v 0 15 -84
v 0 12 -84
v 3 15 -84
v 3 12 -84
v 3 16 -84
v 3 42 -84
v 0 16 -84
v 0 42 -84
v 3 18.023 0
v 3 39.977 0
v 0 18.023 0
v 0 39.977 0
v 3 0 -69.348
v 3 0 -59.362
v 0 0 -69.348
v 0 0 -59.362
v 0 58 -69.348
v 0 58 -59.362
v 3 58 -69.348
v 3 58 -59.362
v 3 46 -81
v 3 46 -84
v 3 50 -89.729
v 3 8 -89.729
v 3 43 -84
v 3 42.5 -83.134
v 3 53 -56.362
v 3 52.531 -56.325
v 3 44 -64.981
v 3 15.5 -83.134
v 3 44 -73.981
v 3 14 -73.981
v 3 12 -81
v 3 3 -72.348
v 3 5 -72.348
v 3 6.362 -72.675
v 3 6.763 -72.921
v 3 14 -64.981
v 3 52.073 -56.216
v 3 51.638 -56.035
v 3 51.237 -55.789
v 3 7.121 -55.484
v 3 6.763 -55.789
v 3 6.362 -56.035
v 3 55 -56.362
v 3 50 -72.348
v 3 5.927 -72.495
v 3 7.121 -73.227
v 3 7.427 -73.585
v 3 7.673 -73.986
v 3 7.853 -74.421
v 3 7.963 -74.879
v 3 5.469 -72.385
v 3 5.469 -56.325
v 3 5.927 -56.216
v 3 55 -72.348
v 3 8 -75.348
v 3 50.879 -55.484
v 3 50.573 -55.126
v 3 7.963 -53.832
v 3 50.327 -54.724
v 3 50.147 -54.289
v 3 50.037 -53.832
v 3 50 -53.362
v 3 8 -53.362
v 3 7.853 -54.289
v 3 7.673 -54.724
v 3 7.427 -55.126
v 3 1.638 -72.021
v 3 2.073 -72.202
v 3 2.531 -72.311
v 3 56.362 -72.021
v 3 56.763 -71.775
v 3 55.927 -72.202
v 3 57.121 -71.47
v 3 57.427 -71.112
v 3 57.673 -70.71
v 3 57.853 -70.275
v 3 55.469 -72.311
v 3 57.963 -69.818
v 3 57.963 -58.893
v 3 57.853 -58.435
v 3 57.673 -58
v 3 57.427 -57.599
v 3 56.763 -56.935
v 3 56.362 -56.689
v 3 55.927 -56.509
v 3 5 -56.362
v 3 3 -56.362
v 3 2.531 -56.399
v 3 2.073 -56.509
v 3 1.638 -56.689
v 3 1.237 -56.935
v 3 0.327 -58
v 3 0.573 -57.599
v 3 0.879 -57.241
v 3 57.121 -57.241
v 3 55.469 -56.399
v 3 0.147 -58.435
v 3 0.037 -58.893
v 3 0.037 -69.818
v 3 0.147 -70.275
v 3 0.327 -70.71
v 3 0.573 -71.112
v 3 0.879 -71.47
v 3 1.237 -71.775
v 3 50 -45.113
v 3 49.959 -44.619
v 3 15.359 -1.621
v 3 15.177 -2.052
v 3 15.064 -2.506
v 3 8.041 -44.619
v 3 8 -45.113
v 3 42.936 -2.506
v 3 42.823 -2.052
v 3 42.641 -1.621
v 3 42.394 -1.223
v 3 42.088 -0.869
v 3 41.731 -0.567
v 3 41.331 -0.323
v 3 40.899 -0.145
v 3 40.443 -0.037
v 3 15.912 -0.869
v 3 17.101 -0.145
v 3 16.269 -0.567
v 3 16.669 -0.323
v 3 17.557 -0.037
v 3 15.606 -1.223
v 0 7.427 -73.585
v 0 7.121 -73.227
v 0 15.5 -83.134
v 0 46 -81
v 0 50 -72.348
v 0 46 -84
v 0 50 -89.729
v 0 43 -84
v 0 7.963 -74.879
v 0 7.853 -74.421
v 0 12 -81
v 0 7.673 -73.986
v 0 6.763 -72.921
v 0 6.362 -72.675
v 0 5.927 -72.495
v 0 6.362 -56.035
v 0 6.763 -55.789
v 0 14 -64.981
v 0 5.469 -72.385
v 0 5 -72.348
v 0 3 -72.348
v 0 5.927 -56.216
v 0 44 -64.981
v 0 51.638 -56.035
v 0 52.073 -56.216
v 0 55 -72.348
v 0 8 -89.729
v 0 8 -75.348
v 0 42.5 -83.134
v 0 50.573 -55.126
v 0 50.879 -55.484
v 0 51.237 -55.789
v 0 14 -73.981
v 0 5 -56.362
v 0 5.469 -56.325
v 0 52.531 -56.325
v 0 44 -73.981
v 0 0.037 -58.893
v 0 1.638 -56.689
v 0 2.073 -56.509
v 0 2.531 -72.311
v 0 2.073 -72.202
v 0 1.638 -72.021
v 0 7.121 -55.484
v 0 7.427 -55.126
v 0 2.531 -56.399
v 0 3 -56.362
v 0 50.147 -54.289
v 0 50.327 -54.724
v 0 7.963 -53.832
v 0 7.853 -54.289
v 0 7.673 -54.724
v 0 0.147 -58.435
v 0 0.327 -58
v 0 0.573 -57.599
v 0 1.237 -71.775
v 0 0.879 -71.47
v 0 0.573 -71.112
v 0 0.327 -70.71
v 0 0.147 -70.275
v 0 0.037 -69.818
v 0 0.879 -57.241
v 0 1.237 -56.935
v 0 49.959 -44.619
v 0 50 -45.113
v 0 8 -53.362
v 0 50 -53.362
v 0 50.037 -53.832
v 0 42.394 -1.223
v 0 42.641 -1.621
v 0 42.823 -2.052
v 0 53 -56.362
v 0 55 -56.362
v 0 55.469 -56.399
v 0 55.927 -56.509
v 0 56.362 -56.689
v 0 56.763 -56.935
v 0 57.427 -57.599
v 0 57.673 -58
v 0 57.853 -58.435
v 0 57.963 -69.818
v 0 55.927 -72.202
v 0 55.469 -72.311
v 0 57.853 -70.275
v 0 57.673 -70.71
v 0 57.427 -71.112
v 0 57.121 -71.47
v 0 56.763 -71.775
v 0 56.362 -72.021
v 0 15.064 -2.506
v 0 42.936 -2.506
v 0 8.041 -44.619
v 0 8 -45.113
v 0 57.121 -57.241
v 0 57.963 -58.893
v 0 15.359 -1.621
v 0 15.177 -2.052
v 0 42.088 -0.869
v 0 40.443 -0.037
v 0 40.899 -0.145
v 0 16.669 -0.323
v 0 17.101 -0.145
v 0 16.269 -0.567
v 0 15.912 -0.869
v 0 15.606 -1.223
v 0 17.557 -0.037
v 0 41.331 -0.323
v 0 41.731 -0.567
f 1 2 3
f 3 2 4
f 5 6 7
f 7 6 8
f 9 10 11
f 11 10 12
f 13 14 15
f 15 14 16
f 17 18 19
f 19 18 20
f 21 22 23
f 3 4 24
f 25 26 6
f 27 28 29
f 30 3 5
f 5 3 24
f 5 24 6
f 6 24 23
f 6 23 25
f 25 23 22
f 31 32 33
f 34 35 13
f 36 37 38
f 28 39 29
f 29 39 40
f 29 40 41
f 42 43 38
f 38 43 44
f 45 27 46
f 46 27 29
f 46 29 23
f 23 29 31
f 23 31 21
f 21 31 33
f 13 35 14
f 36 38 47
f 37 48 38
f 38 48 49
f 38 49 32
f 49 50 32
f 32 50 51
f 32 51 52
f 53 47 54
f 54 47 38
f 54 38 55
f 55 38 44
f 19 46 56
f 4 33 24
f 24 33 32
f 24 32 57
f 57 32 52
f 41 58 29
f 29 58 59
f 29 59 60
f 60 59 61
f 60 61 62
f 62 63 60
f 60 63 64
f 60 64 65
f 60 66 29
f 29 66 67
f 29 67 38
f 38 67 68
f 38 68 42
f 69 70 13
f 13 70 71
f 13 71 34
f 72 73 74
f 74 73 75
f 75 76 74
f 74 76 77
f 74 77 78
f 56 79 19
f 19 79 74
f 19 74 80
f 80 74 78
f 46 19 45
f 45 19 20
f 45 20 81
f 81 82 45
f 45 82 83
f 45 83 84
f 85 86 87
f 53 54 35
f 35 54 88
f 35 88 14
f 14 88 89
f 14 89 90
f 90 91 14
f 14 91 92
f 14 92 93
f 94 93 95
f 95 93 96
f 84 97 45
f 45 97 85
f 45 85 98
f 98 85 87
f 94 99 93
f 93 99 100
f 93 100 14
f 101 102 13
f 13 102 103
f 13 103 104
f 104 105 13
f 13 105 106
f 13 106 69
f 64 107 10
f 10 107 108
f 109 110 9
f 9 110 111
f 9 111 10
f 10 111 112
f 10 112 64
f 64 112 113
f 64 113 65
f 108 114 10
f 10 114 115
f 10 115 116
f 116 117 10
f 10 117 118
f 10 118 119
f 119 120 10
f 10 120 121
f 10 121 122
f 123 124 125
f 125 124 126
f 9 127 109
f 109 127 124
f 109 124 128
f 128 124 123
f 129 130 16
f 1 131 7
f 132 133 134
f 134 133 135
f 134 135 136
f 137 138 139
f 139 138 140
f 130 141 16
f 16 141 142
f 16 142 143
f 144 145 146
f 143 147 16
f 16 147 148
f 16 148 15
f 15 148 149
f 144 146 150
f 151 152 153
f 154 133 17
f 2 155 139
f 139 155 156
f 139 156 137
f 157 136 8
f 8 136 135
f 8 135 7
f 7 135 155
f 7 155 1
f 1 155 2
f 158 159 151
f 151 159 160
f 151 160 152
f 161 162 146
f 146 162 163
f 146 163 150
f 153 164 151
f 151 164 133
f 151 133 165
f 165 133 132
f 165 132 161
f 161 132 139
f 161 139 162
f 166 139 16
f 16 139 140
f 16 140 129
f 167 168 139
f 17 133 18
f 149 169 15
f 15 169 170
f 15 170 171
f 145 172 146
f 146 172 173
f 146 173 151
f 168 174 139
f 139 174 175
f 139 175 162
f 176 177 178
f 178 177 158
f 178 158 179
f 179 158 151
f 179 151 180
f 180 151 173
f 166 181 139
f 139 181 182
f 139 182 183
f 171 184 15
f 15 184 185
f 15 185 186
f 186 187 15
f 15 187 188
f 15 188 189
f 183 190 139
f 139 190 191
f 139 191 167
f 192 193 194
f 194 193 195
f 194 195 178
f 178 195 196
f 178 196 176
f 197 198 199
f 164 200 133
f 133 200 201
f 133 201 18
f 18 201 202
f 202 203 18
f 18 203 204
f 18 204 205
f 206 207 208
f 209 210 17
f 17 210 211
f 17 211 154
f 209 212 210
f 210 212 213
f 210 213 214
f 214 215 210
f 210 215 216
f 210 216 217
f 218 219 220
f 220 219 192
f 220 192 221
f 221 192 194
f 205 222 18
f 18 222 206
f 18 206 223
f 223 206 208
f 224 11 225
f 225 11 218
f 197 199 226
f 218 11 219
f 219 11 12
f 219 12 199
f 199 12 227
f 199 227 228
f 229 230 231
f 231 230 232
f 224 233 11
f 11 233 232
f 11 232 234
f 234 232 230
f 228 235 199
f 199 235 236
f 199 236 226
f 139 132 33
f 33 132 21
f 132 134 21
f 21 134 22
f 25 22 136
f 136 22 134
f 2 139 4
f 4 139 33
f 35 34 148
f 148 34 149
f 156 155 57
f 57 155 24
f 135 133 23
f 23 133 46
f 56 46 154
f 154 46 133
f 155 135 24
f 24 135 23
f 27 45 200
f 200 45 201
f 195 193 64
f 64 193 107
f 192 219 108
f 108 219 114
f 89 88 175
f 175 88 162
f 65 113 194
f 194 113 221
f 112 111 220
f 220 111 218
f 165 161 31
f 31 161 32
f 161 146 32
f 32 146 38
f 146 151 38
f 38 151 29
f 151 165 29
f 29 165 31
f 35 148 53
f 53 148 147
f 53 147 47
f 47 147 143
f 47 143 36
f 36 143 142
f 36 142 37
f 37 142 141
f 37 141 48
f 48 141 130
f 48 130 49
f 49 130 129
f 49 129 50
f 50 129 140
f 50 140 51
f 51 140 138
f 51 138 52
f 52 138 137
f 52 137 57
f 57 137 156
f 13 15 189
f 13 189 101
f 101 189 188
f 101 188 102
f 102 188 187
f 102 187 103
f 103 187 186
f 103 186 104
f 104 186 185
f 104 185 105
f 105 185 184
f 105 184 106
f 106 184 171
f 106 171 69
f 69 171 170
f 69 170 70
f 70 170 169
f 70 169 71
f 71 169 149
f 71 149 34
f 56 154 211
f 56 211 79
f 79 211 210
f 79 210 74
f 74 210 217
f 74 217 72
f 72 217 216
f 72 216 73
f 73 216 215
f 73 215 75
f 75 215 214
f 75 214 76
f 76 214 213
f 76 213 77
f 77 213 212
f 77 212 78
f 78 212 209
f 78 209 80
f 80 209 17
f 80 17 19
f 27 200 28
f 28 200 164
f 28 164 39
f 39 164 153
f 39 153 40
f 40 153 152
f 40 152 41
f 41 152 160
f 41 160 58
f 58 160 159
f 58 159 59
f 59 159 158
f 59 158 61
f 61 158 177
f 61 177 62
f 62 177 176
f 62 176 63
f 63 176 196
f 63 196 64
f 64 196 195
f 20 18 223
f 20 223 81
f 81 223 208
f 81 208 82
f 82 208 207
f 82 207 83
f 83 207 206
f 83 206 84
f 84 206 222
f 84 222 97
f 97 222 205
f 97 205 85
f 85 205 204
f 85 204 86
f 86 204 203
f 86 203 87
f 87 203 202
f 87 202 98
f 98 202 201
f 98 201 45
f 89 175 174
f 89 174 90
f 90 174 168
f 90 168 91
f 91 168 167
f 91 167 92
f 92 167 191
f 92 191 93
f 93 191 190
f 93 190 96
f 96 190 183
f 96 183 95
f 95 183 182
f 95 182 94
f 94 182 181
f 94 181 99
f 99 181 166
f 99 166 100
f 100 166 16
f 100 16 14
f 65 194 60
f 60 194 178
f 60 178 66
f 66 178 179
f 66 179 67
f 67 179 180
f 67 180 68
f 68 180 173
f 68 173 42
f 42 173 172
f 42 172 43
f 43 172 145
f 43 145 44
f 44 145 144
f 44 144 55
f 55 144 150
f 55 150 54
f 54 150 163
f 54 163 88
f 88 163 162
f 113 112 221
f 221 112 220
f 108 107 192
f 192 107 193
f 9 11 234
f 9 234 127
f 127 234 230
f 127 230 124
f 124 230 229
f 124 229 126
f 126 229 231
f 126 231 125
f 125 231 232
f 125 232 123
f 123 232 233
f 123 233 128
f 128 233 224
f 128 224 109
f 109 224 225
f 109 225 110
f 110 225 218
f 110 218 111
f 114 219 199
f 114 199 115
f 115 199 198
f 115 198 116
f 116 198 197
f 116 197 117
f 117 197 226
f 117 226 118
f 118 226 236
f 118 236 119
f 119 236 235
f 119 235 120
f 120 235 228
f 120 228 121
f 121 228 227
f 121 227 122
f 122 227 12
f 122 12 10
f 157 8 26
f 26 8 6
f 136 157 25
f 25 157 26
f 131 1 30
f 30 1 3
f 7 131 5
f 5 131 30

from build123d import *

# Parameters (mm, degrees)
SKETCH_1_W           = 90
SKETCH_1_H           = 58
EXTRUDE_1_DEPTH      = 3
SKETCH_3_OUTSIDE_W   = 113.422
SKETCH_3_OUTSIDE_H   = 81.422
SKETCH_3_OUTSIDE_W_2 = 3
SKETCH_3_OUTSIDE_H_2 = 34
CUT_EXTRUDE_1_DEPTH  = 3
SKETCH_4_W           = 9
SKETCH_4_H           = 30
CUT_EXTRUDE_2_DEPTH  = 4
FILLET_1_R           = 3
EXTRUDE_2_DEPTH      = 3


with BuildPart() as part:
    # 스케치1 → 보스-돌출1 (new body)
    with BuildSketch(Plane(origin=(0, 0, 0), x_dir=(0, 0, -1), z_dir=(1, 0, 0))):
        with Locations((45, 29)):
            Rectangle(SKETCH_1_W, SKETCH_1_H)
    extrude(amount=EXTRUDE_1_DEPTH)

    # 스케치3 outside → 컷-돌출1 (cut)
    with BuildSketch(Plane(origin=(3, 0, 0), x_dir=(0, 0, -1), z_dir=(1, 0, 0))):
        with Locations((45, 29)):
            Rectangle(SKETCH_3_OUTSIDE_W, SKETCH_3_OUTSIDE_H)
        Polygon((44.864431473, 50), (56.362384973, 50), (56.362384973, 58), (72.348389068, 58), (72.348389068, 50), (89.728862946, 50), (89.728862946, 8), (72.348389068, 8), (72.348389068, 0), (56.362384973, 0), (56.362384973, 8), (44.864431473, 8), (0, 15.482252367), (0, 42.517747633), align=None, mode=Mode.SUBTRACT)
        with Locations((82.5, 29)):
            Rectangle(SKETCH_3_OUTSIDE_W_2, SKETCH_3_OUTSIDE_H_2)
    extrude(amount=-CUT_EXTRUDE_1_DEPTH, mode=Mode.SUBTRACT)

    # 스케치4 → 컷-돌출2 (cut, through all)
    with BuildSketch(Plane(origin=(3, 0, 0), x_dir=(0, 0, -1), z_dir=(1, 0, 0))):
        with Locations((69.481068703, 29)):
            Rectangle(SKETCH_4_W, SKETCH_4_H)
    extrude(amount=-CUT_EXTRUDE_2_DEPTH, mode=Mode.SUBTRACT)

    # 필렛1
    fillet_1_edges = [part.edges().sort_by_distance(p)[0] for p in [
        (1.5, 8, -72.348389068),
        (1.5, 0, -72.348389068),
        (1.5, 0, -56.362384973),
        (1.5, 8, -56.362384973),
        (1.5, 8, -44.864431473),
        (1.5, 15.482252367, 0),
        (1.5, 42.517747633, 0),
        (1.5, 50, -44.864431473),
        (1.5, 50, -56.362384973),
        (1.5, 58, -56.362384973),
        (1.5, 58, -72.348389068),
    ]]
    fillet(fillet_1_edges, radius=FILLET_1_R)

    # 스케치5 → 보스-돌출2 (add)
    with BuildSketch(Plane(origin=(3, 0, 0), x_dir=(0, 0, -1), z_dir=(1, 0, 0))):
        Polygon((84, 43), (83.133974596, 42.5), (84, 42), align=None)
        Polygon((83.133974596, 15.5), (84, 16), (84, 15), align=None)
    extrude(amount=-EXTRUDE_2_DEPTH)


solid = part.part
